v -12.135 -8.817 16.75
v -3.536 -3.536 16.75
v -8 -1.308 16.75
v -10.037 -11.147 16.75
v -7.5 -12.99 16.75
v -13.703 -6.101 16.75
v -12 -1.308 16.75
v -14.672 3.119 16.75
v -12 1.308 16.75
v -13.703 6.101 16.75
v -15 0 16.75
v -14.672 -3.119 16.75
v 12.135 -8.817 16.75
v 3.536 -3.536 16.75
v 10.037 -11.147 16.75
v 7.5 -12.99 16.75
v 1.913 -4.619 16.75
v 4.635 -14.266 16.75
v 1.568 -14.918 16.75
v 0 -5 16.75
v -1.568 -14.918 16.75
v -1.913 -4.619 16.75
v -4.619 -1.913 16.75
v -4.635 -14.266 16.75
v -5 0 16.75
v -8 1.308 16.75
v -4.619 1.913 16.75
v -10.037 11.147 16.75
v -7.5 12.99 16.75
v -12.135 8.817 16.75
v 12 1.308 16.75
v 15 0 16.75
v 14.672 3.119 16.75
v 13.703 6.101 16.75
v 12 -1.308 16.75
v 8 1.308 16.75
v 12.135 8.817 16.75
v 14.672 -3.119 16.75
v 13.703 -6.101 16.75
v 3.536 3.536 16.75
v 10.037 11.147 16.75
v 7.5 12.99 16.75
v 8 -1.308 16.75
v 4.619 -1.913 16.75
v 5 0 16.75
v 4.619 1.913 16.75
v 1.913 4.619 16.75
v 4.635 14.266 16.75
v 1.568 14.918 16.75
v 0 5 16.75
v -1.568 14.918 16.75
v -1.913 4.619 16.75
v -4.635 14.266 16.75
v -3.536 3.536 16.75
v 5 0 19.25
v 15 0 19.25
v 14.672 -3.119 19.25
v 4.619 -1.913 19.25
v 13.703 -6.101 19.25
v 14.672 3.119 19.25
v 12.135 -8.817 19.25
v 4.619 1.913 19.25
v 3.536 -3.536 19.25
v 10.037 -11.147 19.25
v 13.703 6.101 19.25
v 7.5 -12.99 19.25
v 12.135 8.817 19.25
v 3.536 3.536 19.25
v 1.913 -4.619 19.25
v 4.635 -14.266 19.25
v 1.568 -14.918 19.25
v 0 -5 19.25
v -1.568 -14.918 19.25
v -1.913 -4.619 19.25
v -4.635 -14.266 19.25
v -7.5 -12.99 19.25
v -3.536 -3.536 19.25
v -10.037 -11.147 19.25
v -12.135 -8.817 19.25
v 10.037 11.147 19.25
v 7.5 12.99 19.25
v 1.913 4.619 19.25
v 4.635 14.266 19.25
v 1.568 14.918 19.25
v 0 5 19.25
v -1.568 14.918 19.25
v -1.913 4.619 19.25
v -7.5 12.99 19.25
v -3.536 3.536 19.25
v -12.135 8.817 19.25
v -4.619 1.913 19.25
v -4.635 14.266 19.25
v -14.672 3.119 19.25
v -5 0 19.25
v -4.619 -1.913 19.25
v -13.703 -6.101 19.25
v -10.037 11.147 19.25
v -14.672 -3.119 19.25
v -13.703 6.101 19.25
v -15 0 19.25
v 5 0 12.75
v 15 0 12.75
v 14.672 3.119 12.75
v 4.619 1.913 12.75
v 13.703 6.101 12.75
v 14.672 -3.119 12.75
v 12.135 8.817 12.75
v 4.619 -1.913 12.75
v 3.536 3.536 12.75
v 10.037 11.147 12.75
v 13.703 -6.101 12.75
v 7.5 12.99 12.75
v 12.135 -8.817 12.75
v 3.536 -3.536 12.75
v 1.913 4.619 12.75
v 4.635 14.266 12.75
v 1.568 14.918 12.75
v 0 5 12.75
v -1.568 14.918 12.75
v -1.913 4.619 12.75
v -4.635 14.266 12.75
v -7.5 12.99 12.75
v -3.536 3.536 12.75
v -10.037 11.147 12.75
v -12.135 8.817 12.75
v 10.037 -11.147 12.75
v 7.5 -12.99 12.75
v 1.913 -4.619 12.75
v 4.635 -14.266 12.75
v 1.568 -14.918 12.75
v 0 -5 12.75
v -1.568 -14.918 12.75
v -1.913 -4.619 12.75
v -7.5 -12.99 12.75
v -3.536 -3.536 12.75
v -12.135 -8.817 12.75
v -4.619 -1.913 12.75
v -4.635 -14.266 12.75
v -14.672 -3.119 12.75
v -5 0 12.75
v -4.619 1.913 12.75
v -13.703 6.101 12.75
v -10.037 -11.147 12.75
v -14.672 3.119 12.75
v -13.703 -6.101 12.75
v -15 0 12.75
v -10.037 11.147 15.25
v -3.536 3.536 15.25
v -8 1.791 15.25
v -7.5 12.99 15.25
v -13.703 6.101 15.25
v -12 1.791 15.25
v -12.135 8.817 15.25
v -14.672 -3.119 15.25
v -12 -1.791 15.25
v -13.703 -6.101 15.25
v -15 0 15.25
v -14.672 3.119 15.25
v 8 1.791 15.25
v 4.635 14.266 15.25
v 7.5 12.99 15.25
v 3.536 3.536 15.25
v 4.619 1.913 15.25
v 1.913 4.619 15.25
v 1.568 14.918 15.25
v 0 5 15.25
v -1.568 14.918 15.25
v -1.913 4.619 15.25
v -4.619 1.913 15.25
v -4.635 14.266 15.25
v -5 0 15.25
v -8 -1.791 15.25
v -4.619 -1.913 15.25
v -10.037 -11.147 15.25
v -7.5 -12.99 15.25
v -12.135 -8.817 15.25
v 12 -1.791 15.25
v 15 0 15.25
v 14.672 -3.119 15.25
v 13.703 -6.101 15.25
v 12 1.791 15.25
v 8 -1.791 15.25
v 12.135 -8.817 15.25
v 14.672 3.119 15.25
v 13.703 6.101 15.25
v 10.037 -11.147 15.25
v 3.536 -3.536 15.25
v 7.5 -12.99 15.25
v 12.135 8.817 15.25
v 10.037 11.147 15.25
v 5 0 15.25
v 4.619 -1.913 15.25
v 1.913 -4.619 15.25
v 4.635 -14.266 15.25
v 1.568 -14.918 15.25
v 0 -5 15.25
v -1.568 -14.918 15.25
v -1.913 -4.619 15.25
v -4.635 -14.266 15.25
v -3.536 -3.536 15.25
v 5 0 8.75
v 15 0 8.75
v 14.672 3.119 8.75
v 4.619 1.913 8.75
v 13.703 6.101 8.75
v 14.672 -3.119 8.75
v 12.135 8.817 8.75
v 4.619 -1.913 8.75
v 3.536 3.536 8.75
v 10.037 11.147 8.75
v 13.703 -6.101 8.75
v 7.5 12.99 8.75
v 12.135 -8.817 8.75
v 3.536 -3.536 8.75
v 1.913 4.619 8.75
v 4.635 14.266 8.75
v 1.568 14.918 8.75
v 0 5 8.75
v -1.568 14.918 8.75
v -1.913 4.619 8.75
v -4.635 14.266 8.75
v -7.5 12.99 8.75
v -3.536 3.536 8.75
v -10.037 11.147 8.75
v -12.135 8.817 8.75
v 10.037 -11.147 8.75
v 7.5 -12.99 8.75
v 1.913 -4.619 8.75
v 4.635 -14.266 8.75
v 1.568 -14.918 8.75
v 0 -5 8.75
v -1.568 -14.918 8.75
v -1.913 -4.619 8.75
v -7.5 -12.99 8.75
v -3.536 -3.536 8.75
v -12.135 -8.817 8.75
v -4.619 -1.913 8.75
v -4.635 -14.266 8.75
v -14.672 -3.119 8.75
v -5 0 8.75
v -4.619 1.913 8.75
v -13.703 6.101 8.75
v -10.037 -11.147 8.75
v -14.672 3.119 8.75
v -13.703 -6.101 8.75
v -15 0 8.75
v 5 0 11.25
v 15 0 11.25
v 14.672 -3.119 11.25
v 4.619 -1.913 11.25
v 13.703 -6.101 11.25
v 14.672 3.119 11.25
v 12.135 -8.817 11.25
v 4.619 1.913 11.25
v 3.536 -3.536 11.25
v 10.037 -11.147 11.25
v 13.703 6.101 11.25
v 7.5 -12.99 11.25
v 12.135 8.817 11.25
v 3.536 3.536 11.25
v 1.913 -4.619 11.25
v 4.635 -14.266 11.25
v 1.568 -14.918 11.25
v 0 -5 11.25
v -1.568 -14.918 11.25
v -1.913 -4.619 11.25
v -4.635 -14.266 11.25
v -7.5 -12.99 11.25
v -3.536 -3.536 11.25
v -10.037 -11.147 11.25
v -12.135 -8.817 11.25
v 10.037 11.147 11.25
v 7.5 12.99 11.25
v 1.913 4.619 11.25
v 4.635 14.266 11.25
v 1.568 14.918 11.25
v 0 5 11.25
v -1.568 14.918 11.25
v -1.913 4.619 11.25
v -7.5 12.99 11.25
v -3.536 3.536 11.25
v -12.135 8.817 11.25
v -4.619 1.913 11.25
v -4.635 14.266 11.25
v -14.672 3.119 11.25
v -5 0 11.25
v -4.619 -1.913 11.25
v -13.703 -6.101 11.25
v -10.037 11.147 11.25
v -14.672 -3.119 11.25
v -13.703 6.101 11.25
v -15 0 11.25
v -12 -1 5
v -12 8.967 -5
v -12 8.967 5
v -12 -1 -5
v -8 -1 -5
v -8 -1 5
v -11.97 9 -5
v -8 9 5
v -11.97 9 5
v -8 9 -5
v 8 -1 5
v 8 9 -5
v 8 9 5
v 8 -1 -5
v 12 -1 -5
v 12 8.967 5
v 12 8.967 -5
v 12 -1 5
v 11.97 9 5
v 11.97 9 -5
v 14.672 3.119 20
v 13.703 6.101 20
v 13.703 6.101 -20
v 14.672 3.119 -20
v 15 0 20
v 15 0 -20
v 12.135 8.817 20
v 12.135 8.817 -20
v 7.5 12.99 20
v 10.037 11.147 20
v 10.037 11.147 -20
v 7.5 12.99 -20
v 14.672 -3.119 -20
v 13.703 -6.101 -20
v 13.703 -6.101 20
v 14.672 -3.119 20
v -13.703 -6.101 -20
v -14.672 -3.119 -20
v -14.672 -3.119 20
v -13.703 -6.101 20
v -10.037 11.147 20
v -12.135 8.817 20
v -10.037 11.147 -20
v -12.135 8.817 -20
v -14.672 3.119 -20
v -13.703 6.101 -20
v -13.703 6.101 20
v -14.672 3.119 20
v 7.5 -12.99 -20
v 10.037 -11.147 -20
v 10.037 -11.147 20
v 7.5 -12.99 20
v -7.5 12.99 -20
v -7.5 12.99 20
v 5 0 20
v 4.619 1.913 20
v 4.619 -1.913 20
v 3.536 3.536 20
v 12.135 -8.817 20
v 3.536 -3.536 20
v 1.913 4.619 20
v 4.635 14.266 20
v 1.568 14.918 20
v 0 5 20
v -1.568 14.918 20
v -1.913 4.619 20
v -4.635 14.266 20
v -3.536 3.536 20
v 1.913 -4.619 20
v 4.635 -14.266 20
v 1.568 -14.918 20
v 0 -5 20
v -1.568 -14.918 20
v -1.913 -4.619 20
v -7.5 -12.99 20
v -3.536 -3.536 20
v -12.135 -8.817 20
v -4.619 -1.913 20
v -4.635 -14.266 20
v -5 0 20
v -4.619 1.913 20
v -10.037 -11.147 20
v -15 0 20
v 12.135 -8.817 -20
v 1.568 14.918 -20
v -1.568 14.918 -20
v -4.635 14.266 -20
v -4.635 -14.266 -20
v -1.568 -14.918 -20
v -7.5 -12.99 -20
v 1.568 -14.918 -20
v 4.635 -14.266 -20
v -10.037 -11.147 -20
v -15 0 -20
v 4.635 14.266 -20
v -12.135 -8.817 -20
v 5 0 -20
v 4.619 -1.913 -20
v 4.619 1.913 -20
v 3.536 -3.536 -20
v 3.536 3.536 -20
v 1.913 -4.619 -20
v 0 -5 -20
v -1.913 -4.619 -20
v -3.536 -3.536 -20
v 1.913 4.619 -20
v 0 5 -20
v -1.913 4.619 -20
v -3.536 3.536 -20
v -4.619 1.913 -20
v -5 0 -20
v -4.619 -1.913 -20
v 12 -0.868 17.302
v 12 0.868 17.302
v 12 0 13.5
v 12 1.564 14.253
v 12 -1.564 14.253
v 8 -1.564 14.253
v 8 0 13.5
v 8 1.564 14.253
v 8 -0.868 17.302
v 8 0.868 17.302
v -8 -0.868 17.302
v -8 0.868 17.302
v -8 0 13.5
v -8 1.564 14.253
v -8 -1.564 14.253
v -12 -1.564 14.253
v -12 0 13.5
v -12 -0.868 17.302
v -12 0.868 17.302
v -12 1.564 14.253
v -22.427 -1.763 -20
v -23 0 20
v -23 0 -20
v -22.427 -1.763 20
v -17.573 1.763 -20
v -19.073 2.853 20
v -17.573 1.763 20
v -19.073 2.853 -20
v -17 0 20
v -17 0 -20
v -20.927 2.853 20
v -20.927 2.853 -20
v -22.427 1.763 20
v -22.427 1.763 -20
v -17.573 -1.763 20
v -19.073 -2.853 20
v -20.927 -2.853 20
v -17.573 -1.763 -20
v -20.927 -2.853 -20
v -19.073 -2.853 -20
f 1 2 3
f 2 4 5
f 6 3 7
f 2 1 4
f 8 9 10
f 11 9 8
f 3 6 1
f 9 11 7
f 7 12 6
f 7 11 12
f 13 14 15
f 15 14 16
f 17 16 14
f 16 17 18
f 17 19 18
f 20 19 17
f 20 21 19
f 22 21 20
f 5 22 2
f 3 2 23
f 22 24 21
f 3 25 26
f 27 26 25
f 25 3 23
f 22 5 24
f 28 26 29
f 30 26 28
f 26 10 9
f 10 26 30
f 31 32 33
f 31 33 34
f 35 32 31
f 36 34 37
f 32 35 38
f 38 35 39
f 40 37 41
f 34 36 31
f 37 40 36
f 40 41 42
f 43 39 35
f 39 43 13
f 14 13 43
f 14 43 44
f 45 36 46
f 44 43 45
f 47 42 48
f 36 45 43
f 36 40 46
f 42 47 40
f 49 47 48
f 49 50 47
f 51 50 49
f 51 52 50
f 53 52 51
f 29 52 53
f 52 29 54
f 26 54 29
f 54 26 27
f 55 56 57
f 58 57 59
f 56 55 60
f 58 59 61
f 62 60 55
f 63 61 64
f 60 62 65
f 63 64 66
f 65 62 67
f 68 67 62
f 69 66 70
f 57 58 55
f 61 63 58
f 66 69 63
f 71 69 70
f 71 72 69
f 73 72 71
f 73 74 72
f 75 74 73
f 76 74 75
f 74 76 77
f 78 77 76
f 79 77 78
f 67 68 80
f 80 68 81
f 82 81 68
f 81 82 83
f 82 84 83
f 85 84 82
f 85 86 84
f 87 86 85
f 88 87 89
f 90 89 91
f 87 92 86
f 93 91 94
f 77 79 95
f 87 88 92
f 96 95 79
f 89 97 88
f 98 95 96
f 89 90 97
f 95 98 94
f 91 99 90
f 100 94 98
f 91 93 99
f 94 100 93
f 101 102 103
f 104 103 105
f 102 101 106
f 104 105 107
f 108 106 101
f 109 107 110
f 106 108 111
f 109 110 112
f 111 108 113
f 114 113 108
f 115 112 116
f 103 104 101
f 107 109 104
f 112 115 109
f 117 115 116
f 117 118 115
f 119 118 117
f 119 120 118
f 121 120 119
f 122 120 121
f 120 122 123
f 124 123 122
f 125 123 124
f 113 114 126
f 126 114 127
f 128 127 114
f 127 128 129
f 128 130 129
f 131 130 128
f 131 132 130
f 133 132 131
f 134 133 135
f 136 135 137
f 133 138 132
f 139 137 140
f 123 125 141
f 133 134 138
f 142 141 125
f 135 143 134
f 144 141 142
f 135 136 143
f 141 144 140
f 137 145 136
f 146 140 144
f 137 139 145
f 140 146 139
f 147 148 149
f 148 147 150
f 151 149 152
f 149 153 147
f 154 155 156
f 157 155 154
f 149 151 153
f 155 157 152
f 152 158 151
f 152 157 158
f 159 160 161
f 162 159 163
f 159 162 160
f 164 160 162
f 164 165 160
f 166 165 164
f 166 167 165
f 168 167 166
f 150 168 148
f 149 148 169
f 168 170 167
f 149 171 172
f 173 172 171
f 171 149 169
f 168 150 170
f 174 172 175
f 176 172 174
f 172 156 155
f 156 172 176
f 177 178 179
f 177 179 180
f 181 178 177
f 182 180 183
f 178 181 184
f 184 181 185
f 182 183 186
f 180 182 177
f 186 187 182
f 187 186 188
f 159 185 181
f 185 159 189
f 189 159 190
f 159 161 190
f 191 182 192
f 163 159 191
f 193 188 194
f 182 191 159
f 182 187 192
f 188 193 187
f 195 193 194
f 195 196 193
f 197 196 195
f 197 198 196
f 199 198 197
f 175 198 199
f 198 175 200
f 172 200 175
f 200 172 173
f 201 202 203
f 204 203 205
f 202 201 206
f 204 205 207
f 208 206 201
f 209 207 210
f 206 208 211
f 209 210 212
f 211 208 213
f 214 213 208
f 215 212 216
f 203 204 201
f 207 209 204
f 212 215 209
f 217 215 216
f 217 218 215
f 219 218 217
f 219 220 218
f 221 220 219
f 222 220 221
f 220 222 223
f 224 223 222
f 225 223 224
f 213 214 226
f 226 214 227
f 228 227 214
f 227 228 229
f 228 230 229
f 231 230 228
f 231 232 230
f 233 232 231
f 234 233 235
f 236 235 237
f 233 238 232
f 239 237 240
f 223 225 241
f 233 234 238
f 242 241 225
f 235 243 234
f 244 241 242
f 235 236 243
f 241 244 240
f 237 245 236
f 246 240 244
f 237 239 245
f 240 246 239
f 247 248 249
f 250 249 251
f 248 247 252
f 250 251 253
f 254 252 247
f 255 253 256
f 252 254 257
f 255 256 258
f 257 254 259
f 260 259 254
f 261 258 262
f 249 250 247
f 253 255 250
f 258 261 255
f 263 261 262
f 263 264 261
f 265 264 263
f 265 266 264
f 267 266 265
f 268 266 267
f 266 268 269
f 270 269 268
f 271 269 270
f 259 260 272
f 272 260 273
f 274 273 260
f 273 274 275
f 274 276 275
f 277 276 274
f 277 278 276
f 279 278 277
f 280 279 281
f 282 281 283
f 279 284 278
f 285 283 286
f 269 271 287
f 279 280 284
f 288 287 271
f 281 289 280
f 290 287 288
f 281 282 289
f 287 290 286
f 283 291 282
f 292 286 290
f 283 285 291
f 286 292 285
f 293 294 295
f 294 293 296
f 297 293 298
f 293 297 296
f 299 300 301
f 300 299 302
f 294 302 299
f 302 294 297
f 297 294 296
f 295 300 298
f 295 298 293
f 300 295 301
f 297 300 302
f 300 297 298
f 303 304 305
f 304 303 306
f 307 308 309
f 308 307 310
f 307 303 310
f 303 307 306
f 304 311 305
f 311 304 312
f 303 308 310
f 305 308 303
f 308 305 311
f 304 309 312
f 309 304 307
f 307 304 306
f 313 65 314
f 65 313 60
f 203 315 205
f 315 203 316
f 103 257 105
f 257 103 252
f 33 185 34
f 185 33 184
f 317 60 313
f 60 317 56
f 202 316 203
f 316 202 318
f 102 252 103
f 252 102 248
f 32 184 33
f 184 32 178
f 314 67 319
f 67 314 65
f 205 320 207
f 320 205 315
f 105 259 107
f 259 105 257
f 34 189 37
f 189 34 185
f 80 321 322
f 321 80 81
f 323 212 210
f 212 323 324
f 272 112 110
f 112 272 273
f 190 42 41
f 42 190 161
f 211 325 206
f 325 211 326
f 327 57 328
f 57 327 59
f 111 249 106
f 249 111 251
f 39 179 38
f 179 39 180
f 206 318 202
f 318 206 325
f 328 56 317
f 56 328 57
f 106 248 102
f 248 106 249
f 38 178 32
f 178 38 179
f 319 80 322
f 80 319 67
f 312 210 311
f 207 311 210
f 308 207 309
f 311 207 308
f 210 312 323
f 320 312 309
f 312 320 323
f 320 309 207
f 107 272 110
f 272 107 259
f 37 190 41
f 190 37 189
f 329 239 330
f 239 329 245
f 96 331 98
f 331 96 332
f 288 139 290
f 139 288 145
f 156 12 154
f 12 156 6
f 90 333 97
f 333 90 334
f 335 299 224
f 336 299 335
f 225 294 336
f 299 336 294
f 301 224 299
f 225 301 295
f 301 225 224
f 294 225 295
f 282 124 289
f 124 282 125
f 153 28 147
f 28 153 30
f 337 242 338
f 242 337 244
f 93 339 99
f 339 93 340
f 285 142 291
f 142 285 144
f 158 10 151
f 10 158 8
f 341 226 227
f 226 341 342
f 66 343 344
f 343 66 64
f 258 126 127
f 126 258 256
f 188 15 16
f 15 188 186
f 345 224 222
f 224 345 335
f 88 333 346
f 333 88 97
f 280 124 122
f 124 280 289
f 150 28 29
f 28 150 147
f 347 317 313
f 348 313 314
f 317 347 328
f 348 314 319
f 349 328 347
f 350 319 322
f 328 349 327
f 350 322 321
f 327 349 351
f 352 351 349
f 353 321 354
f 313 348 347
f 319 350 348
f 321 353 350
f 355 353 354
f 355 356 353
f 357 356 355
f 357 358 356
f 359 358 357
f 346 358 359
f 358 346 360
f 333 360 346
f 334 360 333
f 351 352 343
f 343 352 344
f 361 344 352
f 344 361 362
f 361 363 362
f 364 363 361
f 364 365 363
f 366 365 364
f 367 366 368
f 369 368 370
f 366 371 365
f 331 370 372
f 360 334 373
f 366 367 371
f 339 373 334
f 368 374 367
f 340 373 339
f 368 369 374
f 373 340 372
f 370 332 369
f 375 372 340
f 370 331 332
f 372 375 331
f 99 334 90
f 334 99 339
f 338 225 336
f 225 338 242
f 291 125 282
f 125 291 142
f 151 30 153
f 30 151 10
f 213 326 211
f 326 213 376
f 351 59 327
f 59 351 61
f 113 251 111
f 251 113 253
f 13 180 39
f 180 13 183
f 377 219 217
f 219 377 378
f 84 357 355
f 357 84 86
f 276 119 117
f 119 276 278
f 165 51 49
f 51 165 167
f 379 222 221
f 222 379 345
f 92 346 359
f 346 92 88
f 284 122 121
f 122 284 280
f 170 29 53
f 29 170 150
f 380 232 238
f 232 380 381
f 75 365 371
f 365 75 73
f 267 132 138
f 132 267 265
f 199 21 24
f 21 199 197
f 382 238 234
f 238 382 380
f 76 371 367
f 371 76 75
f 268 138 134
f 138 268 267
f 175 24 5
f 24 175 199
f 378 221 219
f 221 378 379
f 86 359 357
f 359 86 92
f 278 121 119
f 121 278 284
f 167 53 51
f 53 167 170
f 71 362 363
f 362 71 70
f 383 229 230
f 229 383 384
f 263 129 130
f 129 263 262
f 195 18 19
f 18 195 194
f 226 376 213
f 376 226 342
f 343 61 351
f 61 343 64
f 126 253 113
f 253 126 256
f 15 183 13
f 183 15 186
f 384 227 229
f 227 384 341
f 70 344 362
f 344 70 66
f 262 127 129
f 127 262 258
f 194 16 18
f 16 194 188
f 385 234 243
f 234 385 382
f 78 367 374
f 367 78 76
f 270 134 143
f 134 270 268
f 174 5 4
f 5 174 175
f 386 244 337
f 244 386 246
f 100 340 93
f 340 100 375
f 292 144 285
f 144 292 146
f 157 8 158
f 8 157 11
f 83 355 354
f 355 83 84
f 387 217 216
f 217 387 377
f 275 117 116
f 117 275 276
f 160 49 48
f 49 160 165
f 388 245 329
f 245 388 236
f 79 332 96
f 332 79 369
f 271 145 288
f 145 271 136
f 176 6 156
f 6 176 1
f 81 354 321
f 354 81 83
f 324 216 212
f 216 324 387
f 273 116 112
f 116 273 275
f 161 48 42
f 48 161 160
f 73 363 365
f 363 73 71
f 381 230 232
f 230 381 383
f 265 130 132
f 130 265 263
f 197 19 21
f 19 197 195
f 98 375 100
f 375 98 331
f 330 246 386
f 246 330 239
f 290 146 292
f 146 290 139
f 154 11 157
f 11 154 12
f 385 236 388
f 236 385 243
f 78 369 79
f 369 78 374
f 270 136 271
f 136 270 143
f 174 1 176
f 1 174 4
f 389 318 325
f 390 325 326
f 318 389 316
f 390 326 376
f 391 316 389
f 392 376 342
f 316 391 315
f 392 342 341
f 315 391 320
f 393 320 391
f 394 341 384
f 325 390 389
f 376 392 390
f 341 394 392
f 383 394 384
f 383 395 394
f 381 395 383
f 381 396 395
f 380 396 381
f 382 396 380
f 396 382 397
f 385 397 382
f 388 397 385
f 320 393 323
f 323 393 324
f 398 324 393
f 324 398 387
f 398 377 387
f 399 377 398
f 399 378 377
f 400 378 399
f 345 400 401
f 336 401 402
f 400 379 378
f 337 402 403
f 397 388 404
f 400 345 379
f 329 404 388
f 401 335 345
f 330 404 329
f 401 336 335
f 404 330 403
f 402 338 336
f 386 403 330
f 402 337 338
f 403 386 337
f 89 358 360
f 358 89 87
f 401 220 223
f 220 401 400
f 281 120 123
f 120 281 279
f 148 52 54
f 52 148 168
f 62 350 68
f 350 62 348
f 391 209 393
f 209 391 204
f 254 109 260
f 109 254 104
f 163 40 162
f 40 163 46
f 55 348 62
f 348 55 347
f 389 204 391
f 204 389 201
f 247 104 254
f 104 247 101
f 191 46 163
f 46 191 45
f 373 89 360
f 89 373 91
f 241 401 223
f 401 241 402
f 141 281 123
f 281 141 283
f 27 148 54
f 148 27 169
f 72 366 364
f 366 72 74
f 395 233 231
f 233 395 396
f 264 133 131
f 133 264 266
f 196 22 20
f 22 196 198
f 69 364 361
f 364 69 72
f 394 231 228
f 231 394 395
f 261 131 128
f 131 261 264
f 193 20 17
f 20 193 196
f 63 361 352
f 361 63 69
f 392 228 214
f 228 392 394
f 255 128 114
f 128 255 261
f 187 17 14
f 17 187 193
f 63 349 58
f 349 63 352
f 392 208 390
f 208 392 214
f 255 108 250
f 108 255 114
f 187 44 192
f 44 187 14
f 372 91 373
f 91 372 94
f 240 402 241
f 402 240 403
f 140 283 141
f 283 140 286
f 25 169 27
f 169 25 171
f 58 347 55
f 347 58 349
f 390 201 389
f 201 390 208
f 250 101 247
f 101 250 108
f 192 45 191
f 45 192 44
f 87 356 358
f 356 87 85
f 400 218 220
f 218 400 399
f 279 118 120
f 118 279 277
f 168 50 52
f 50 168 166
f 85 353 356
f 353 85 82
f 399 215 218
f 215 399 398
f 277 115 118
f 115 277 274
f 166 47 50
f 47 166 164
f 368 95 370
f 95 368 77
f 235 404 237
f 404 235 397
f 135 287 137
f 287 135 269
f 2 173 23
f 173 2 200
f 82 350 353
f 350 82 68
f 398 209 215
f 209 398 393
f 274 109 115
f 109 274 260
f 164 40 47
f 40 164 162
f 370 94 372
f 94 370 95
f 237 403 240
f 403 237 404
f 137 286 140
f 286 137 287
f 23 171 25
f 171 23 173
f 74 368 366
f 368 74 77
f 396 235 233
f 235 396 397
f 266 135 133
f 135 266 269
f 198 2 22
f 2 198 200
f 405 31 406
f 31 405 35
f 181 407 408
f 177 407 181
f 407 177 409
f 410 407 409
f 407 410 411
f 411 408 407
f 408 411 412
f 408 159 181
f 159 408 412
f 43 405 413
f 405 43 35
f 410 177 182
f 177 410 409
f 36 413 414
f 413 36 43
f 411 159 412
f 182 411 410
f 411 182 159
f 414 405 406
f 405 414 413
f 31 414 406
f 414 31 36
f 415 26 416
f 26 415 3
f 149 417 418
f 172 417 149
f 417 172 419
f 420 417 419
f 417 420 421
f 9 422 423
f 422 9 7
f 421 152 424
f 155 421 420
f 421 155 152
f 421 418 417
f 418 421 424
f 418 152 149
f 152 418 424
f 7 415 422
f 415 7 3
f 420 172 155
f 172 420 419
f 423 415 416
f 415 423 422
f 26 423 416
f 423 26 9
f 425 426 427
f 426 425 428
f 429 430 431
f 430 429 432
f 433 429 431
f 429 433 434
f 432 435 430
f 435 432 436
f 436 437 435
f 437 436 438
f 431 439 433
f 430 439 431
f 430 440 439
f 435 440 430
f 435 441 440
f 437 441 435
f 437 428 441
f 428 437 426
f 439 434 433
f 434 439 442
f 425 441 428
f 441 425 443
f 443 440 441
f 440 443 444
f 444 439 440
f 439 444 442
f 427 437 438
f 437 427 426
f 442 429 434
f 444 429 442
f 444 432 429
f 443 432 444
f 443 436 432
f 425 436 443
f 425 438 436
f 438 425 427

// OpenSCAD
// Parameters
cylinder_diameter = 30;
cylinder_length = 40;
hole_diameter = 10;
groove_width = 4;
groove_depth = 2.5; // Adjusted groove depth for uniformity
num_grooves = 3;
pin_diameter = 6;
pin_length = 40; // Shortened pin length for consistency
screw_slot_width = 10; // Adjusted screw slot width for visibility
screw_slot_depth = 4; // Adjusted screw slot depth for visibility
screw_diameter = 4;

// Function to create grooves
module cylinder_with_grooves() {
    difference() {
        cylinder(d = cylinder_diameter, h = cylinder_length, center = true);
        cylinder(d = hole_diameter, h = cylinder_length + 2, center = true);
        for (i = [0:num_grooves-1]) {
            translate([0, 0, cylinder_length/2 - groove_width*i - groove_width/2])
                cylinder(d = cylinder_diameter + 2, h = groove_depth, center = true);
        }
        for (pos = [-cylinder_diameter/3, cylinder_diameter/3]) { // Adjusted position of the slot cutouts
            rotate([90, 0, 0])
                translate([pos, 0, -screw_slot_depth])
                    cube([screw_slot_depth, screw_slot_width, screw_slot_width], center = true);
        }
    }
}

// Module for central pin shaft
module central_pin() {
    translate([-pin_length/2, 0, 0])
        rotate([0, 0, 0]) 
            cylinder(d = pin_diameter, h = pin_length, center = true);
}

// Module for adjustment slot with screws
module adjustment_screw() {
    translate([cylinder_length/4, 0, cylinder_diameter/2 + groove_depth - screw_slot_depth/2])
        rotate([0, 90, 0])
            cylinder(d = screw_diameter, h = screw_slot_depth, center = true);
    translate([-cylinder_length/4, 0, cylinder_diameter/2 + groove_depth - screw_slot_depth/2])
        rotate([0, 90, 0])
            cylinder(d = screw_diameter, h = screw_slot_depth, center = true);
}

// Assemble all components
module flexible_coupling() {
    cylinder_with_grooves();
    central_pin();
    adjustment_screw();
}

// Render the model
flexible_coupling();
